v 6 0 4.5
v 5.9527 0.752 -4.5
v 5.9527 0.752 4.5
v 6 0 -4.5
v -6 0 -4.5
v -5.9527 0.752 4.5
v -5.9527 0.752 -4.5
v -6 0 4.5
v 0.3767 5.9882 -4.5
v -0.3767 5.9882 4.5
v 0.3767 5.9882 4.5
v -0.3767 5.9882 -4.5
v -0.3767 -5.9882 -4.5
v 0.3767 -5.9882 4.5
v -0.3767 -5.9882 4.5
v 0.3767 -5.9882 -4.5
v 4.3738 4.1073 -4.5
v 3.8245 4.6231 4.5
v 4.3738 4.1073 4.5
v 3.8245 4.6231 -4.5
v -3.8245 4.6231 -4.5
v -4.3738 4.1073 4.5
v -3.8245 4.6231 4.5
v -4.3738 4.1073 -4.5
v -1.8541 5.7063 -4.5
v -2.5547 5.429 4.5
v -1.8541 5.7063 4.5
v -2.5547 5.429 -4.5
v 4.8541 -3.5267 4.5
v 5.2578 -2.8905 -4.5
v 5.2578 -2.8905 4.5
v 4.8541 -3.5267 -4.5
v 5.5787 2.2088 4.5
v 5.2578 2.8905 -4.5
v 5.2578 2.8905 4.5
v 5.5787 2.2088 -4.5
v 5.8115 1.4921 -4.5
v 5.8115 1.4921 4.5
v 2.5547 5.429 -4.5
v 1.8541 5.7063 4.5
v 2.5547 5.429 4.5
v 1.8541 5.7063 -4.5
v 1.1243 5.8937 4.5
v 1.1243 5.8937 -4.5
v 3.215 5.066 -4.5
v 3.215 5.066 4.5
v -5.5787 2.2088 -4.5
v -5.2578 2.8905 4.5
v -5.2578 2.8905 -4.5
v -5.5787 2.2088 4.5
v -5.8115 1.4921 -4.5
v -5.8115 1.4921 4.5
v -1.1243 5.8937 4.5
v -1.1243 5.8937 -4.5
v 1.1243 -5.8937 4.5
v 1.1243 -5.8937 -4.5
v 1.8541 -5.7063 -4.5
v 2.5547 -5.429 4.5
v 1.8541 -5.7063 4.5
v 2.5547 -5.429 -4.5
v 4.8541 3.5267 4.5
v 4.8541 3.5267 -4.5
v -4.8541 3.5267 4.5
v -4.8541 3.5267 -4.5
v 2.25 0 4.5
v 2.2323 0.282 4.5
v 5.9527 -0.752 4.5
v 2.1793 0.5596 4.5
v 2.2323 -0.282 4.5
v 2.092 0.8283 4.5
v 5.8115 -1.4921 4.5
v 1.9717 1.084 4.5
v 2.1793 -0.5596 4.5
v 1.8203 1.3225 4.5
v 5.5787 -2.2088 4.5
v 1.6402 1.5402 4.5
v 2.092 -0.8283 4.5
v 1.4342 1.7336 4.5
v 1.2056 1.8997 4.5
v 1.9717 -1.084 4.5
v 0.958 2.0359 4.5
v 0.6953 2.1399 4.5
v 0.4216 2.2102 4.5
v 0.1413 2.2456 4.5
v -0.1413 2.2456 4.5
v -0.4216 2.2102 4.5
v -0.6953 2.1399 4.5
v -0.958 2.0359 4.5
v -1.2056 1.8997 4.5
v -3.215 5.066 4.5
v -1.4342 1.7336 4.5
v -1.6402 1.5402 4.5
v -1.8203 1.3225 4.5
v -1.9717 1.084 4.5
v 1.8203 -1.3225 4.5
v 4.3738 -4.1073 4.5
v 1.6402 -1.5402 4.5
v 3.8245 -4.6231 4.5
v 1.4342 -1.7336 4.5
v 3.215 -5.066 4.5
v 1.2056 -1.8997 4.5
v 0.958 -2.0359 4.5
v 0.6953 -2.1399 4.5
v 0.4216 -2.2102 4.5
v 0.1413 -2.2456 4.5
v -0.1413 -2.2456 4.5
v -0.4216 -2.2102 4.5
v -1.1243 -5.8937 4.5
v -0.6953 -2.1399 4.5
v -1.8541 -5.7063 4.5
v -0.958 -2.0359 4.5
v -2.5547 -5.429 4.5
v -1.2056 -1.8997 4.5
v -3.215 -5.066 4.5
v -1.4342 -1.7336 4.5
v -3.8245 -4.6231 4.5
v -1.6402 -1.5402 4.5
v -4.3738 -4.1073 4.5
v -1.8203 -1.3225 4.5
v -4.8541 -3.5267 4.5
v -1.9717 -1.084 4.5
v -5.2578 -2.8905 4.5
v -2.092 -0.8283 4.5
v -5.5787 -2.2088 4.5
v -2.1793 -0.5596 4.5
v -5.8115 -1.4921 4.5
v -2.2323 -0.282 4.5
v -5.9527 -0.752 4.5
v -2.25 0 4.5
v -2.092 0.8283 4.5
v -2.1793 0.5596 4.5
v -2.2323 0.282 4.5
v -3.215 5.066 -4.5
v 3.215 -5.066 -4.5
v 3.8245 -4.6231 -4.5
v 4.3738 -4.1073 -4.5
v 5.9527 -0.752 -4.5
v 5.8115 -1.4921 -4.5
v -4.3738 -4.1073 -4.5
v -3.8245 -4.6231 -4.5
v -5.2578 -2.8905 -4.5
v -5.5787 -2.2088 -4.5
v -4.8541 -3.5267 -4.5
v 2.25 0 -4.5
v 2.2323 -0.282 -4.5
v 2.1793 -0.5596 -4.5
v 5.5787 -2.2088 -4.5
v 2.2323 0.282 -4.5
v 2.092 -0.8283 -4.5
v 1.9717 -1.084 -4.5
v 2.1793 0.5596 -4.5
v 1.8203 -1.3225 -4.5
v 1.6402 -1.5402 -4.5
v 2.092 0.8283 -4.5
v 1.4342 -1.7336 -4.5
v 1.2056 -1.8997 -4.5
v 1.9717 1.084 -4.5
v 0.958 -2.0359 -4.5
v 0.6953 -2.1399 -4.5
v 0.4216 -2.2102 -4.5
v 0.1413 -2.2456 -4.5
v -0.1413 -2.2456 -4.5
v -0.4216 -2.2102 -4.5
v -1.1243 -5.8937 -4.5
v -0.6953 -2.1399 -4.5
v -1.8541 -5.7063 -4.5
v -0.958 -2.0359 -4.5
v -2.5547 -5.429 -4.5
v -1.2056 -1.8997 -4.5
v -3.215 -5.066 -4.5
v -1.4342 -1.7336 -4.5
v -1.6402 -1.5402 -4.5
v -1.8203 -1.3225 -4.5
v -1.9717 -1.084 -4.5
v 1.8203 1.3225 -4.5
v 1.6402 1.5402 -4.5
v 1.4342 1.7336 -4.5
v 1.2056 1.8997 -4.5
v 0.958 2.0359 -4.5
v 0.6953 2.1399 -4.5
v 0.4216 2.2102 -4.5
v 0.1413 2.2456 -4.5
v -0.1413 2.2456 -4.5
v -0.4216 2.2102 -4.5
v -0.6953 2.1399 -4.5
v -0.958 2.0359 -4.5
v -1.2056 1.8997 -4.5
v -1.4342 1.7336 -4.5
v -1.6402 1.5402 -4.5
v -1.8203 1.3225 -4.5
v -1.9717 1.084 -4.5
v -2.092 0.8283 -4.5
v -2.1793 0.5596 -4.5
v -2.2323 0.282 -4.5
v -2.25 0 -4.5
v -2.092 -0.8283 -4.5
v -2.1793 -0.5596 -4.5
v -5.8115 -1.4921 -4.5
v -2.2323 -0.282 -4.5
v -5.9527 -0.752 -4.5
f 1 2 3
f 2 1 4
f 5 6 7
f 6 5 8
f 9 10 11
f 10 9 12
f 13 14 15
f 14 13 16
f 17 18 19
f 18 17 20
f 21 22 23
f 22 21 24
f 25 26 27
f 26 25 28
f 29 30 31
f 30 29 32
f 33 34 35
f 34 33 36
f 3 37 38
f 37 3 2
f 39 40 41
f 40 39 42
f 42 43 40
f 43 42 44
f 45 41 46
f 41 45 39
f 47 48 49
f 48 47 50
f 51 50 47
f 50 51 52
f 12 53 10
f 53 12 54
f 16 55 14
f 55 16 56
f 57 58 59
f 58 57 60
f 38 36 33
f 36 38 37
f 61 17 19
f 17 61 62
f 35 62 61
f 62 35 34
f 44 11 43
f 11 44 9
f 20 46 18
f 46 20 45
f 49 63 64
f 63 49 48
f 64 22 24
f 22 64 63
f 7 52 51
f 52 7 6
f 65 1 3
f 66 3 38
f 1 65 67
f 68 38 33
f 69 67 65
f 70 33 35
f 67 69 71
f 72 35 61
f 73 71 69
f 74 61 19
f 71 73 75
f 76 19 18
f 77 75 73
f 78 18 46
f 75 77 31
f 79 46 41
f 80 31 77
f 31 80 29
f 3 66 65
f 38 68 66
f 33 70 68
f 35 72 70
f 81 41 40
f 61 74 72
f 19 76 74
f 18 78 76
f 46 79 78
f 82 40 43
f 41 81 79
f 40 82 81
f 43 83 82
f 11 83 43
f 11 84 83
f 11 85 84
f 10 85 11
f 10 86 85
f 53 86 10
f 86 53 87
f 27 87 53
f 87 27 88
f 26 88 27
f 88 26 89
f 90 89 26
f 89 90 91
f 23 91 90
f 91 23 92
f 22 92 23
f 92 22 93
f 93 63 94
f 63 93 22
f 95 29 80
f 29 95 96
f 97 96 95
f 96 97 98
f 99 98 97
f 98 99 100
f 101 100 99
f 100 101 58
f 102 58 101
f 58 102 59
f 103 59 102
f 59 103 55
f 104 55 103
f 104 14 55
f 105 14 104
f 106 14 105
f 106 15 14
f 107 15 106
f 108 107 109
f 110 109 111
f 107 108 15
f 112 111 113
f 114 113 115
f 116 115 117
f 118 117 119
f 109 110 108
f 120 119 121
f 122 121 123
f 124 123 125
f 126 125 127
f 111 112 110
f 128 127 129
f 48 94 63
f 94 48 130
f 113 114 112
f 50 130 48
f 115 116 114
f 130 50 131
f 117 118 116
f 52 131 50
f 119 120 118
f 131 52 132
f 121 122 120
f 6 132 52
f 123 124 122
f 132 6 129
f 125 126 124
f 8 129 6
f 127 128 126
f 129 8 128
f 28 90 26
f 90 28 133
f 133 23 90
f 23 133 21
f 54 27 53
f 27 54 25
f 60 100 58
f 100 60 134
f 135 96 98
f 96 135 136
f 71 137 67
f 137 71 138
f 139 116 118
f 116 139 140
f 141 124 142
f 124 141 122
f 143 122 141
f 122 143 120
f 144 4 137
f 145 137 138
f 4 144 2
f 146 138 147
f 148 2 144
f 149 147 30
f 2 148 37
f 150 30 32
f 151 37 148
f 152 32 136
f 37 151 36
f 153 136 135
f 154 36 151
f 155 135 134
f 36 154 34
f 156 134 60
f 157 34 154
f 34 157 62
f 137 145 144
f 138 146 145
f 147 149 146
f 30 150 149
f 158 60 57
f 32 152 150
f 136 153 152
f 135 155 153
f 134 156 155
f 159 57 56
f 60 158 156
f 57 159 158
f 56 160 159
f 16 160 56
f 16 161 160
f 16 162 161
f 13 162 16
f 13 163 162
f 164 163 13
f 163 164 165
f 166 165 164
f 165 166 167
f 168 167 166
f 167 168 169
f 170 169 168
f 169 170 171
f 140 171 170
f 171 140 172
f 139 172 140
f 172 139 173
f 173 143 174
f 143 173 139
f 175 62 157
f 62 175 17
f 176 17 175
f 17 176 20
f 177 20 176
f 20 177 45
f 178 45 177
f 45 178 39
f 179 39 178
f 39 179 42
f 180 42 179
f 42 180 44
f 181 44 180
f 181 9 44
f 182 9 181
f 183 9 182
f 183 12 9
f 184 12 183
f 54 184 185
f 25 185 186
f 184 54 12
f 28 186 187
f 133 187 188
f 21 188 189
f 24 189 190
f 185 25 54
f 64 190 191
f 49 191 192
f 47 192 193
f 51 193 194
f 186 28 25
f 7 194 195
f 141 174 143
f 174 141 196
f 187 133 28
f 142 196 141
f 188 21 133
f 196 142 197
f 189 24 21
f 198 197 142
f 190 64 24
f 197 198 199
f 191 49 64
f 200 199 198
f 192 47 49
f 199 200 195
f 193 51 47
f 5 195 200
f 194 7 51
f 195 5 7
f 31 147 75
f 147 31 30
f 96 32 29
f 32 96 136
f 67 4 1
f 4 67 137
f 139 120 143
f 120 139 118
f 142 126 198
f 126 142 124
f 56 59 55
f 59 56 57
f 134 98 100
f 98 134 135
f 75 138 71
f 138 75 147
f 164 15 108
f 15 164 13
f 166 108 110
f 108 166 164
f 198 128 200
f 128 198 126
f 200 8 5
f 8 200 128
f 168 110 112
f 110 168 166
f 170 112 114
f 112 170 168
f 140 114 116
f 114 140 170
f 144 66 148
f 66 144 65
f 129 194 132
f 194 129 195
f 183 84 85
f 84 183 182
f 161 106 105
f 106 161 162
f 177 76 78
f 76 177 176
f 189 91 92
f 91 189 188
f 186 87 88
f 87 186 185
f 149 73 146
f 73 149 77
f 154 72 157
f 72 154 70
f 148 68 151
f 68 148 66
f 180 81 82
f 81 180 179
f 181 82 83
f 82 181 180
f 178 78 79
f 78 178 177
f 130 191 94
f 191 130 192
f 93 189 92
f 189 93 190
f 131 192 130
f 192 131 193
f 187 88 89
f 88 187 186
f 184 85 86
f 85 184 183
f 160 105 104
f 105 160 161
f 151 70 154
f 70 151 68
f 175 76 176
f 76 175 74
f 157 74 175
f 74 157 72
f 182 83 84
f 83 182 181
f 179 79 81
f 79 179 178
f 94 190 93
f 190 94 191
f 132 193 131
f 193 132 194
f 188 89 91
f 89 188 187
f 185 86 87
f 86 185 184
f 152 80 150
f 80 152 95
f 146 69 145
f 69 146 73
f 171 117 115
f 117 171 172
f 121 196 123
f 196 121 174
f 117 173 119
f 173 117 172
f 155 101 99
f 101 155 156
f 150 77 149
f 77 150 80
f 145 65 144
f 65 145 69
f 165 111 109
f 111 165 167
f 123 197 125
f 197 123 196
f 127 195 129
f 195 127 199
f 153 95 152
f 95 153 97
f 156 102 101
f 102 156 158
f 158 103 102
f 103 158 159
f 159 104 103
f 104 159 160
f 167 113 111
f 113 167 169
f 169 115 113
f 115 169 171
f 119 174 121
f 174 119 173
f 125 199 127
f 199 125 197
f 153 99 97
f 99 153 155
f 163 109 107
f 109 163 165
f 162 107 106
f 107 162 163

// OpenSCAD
$fn = 50;


difference() {
	union() {
		translate(v = [0, 0, -4.5000000000]) {
			cylinder(h = 9, r = 6.0000000000);
		}
	}
	union() {
		translate(v = [0, 0, -100.0000000000]) {
			cylinder(h = 200, r = 2.2500000000);
		}
	}
}
